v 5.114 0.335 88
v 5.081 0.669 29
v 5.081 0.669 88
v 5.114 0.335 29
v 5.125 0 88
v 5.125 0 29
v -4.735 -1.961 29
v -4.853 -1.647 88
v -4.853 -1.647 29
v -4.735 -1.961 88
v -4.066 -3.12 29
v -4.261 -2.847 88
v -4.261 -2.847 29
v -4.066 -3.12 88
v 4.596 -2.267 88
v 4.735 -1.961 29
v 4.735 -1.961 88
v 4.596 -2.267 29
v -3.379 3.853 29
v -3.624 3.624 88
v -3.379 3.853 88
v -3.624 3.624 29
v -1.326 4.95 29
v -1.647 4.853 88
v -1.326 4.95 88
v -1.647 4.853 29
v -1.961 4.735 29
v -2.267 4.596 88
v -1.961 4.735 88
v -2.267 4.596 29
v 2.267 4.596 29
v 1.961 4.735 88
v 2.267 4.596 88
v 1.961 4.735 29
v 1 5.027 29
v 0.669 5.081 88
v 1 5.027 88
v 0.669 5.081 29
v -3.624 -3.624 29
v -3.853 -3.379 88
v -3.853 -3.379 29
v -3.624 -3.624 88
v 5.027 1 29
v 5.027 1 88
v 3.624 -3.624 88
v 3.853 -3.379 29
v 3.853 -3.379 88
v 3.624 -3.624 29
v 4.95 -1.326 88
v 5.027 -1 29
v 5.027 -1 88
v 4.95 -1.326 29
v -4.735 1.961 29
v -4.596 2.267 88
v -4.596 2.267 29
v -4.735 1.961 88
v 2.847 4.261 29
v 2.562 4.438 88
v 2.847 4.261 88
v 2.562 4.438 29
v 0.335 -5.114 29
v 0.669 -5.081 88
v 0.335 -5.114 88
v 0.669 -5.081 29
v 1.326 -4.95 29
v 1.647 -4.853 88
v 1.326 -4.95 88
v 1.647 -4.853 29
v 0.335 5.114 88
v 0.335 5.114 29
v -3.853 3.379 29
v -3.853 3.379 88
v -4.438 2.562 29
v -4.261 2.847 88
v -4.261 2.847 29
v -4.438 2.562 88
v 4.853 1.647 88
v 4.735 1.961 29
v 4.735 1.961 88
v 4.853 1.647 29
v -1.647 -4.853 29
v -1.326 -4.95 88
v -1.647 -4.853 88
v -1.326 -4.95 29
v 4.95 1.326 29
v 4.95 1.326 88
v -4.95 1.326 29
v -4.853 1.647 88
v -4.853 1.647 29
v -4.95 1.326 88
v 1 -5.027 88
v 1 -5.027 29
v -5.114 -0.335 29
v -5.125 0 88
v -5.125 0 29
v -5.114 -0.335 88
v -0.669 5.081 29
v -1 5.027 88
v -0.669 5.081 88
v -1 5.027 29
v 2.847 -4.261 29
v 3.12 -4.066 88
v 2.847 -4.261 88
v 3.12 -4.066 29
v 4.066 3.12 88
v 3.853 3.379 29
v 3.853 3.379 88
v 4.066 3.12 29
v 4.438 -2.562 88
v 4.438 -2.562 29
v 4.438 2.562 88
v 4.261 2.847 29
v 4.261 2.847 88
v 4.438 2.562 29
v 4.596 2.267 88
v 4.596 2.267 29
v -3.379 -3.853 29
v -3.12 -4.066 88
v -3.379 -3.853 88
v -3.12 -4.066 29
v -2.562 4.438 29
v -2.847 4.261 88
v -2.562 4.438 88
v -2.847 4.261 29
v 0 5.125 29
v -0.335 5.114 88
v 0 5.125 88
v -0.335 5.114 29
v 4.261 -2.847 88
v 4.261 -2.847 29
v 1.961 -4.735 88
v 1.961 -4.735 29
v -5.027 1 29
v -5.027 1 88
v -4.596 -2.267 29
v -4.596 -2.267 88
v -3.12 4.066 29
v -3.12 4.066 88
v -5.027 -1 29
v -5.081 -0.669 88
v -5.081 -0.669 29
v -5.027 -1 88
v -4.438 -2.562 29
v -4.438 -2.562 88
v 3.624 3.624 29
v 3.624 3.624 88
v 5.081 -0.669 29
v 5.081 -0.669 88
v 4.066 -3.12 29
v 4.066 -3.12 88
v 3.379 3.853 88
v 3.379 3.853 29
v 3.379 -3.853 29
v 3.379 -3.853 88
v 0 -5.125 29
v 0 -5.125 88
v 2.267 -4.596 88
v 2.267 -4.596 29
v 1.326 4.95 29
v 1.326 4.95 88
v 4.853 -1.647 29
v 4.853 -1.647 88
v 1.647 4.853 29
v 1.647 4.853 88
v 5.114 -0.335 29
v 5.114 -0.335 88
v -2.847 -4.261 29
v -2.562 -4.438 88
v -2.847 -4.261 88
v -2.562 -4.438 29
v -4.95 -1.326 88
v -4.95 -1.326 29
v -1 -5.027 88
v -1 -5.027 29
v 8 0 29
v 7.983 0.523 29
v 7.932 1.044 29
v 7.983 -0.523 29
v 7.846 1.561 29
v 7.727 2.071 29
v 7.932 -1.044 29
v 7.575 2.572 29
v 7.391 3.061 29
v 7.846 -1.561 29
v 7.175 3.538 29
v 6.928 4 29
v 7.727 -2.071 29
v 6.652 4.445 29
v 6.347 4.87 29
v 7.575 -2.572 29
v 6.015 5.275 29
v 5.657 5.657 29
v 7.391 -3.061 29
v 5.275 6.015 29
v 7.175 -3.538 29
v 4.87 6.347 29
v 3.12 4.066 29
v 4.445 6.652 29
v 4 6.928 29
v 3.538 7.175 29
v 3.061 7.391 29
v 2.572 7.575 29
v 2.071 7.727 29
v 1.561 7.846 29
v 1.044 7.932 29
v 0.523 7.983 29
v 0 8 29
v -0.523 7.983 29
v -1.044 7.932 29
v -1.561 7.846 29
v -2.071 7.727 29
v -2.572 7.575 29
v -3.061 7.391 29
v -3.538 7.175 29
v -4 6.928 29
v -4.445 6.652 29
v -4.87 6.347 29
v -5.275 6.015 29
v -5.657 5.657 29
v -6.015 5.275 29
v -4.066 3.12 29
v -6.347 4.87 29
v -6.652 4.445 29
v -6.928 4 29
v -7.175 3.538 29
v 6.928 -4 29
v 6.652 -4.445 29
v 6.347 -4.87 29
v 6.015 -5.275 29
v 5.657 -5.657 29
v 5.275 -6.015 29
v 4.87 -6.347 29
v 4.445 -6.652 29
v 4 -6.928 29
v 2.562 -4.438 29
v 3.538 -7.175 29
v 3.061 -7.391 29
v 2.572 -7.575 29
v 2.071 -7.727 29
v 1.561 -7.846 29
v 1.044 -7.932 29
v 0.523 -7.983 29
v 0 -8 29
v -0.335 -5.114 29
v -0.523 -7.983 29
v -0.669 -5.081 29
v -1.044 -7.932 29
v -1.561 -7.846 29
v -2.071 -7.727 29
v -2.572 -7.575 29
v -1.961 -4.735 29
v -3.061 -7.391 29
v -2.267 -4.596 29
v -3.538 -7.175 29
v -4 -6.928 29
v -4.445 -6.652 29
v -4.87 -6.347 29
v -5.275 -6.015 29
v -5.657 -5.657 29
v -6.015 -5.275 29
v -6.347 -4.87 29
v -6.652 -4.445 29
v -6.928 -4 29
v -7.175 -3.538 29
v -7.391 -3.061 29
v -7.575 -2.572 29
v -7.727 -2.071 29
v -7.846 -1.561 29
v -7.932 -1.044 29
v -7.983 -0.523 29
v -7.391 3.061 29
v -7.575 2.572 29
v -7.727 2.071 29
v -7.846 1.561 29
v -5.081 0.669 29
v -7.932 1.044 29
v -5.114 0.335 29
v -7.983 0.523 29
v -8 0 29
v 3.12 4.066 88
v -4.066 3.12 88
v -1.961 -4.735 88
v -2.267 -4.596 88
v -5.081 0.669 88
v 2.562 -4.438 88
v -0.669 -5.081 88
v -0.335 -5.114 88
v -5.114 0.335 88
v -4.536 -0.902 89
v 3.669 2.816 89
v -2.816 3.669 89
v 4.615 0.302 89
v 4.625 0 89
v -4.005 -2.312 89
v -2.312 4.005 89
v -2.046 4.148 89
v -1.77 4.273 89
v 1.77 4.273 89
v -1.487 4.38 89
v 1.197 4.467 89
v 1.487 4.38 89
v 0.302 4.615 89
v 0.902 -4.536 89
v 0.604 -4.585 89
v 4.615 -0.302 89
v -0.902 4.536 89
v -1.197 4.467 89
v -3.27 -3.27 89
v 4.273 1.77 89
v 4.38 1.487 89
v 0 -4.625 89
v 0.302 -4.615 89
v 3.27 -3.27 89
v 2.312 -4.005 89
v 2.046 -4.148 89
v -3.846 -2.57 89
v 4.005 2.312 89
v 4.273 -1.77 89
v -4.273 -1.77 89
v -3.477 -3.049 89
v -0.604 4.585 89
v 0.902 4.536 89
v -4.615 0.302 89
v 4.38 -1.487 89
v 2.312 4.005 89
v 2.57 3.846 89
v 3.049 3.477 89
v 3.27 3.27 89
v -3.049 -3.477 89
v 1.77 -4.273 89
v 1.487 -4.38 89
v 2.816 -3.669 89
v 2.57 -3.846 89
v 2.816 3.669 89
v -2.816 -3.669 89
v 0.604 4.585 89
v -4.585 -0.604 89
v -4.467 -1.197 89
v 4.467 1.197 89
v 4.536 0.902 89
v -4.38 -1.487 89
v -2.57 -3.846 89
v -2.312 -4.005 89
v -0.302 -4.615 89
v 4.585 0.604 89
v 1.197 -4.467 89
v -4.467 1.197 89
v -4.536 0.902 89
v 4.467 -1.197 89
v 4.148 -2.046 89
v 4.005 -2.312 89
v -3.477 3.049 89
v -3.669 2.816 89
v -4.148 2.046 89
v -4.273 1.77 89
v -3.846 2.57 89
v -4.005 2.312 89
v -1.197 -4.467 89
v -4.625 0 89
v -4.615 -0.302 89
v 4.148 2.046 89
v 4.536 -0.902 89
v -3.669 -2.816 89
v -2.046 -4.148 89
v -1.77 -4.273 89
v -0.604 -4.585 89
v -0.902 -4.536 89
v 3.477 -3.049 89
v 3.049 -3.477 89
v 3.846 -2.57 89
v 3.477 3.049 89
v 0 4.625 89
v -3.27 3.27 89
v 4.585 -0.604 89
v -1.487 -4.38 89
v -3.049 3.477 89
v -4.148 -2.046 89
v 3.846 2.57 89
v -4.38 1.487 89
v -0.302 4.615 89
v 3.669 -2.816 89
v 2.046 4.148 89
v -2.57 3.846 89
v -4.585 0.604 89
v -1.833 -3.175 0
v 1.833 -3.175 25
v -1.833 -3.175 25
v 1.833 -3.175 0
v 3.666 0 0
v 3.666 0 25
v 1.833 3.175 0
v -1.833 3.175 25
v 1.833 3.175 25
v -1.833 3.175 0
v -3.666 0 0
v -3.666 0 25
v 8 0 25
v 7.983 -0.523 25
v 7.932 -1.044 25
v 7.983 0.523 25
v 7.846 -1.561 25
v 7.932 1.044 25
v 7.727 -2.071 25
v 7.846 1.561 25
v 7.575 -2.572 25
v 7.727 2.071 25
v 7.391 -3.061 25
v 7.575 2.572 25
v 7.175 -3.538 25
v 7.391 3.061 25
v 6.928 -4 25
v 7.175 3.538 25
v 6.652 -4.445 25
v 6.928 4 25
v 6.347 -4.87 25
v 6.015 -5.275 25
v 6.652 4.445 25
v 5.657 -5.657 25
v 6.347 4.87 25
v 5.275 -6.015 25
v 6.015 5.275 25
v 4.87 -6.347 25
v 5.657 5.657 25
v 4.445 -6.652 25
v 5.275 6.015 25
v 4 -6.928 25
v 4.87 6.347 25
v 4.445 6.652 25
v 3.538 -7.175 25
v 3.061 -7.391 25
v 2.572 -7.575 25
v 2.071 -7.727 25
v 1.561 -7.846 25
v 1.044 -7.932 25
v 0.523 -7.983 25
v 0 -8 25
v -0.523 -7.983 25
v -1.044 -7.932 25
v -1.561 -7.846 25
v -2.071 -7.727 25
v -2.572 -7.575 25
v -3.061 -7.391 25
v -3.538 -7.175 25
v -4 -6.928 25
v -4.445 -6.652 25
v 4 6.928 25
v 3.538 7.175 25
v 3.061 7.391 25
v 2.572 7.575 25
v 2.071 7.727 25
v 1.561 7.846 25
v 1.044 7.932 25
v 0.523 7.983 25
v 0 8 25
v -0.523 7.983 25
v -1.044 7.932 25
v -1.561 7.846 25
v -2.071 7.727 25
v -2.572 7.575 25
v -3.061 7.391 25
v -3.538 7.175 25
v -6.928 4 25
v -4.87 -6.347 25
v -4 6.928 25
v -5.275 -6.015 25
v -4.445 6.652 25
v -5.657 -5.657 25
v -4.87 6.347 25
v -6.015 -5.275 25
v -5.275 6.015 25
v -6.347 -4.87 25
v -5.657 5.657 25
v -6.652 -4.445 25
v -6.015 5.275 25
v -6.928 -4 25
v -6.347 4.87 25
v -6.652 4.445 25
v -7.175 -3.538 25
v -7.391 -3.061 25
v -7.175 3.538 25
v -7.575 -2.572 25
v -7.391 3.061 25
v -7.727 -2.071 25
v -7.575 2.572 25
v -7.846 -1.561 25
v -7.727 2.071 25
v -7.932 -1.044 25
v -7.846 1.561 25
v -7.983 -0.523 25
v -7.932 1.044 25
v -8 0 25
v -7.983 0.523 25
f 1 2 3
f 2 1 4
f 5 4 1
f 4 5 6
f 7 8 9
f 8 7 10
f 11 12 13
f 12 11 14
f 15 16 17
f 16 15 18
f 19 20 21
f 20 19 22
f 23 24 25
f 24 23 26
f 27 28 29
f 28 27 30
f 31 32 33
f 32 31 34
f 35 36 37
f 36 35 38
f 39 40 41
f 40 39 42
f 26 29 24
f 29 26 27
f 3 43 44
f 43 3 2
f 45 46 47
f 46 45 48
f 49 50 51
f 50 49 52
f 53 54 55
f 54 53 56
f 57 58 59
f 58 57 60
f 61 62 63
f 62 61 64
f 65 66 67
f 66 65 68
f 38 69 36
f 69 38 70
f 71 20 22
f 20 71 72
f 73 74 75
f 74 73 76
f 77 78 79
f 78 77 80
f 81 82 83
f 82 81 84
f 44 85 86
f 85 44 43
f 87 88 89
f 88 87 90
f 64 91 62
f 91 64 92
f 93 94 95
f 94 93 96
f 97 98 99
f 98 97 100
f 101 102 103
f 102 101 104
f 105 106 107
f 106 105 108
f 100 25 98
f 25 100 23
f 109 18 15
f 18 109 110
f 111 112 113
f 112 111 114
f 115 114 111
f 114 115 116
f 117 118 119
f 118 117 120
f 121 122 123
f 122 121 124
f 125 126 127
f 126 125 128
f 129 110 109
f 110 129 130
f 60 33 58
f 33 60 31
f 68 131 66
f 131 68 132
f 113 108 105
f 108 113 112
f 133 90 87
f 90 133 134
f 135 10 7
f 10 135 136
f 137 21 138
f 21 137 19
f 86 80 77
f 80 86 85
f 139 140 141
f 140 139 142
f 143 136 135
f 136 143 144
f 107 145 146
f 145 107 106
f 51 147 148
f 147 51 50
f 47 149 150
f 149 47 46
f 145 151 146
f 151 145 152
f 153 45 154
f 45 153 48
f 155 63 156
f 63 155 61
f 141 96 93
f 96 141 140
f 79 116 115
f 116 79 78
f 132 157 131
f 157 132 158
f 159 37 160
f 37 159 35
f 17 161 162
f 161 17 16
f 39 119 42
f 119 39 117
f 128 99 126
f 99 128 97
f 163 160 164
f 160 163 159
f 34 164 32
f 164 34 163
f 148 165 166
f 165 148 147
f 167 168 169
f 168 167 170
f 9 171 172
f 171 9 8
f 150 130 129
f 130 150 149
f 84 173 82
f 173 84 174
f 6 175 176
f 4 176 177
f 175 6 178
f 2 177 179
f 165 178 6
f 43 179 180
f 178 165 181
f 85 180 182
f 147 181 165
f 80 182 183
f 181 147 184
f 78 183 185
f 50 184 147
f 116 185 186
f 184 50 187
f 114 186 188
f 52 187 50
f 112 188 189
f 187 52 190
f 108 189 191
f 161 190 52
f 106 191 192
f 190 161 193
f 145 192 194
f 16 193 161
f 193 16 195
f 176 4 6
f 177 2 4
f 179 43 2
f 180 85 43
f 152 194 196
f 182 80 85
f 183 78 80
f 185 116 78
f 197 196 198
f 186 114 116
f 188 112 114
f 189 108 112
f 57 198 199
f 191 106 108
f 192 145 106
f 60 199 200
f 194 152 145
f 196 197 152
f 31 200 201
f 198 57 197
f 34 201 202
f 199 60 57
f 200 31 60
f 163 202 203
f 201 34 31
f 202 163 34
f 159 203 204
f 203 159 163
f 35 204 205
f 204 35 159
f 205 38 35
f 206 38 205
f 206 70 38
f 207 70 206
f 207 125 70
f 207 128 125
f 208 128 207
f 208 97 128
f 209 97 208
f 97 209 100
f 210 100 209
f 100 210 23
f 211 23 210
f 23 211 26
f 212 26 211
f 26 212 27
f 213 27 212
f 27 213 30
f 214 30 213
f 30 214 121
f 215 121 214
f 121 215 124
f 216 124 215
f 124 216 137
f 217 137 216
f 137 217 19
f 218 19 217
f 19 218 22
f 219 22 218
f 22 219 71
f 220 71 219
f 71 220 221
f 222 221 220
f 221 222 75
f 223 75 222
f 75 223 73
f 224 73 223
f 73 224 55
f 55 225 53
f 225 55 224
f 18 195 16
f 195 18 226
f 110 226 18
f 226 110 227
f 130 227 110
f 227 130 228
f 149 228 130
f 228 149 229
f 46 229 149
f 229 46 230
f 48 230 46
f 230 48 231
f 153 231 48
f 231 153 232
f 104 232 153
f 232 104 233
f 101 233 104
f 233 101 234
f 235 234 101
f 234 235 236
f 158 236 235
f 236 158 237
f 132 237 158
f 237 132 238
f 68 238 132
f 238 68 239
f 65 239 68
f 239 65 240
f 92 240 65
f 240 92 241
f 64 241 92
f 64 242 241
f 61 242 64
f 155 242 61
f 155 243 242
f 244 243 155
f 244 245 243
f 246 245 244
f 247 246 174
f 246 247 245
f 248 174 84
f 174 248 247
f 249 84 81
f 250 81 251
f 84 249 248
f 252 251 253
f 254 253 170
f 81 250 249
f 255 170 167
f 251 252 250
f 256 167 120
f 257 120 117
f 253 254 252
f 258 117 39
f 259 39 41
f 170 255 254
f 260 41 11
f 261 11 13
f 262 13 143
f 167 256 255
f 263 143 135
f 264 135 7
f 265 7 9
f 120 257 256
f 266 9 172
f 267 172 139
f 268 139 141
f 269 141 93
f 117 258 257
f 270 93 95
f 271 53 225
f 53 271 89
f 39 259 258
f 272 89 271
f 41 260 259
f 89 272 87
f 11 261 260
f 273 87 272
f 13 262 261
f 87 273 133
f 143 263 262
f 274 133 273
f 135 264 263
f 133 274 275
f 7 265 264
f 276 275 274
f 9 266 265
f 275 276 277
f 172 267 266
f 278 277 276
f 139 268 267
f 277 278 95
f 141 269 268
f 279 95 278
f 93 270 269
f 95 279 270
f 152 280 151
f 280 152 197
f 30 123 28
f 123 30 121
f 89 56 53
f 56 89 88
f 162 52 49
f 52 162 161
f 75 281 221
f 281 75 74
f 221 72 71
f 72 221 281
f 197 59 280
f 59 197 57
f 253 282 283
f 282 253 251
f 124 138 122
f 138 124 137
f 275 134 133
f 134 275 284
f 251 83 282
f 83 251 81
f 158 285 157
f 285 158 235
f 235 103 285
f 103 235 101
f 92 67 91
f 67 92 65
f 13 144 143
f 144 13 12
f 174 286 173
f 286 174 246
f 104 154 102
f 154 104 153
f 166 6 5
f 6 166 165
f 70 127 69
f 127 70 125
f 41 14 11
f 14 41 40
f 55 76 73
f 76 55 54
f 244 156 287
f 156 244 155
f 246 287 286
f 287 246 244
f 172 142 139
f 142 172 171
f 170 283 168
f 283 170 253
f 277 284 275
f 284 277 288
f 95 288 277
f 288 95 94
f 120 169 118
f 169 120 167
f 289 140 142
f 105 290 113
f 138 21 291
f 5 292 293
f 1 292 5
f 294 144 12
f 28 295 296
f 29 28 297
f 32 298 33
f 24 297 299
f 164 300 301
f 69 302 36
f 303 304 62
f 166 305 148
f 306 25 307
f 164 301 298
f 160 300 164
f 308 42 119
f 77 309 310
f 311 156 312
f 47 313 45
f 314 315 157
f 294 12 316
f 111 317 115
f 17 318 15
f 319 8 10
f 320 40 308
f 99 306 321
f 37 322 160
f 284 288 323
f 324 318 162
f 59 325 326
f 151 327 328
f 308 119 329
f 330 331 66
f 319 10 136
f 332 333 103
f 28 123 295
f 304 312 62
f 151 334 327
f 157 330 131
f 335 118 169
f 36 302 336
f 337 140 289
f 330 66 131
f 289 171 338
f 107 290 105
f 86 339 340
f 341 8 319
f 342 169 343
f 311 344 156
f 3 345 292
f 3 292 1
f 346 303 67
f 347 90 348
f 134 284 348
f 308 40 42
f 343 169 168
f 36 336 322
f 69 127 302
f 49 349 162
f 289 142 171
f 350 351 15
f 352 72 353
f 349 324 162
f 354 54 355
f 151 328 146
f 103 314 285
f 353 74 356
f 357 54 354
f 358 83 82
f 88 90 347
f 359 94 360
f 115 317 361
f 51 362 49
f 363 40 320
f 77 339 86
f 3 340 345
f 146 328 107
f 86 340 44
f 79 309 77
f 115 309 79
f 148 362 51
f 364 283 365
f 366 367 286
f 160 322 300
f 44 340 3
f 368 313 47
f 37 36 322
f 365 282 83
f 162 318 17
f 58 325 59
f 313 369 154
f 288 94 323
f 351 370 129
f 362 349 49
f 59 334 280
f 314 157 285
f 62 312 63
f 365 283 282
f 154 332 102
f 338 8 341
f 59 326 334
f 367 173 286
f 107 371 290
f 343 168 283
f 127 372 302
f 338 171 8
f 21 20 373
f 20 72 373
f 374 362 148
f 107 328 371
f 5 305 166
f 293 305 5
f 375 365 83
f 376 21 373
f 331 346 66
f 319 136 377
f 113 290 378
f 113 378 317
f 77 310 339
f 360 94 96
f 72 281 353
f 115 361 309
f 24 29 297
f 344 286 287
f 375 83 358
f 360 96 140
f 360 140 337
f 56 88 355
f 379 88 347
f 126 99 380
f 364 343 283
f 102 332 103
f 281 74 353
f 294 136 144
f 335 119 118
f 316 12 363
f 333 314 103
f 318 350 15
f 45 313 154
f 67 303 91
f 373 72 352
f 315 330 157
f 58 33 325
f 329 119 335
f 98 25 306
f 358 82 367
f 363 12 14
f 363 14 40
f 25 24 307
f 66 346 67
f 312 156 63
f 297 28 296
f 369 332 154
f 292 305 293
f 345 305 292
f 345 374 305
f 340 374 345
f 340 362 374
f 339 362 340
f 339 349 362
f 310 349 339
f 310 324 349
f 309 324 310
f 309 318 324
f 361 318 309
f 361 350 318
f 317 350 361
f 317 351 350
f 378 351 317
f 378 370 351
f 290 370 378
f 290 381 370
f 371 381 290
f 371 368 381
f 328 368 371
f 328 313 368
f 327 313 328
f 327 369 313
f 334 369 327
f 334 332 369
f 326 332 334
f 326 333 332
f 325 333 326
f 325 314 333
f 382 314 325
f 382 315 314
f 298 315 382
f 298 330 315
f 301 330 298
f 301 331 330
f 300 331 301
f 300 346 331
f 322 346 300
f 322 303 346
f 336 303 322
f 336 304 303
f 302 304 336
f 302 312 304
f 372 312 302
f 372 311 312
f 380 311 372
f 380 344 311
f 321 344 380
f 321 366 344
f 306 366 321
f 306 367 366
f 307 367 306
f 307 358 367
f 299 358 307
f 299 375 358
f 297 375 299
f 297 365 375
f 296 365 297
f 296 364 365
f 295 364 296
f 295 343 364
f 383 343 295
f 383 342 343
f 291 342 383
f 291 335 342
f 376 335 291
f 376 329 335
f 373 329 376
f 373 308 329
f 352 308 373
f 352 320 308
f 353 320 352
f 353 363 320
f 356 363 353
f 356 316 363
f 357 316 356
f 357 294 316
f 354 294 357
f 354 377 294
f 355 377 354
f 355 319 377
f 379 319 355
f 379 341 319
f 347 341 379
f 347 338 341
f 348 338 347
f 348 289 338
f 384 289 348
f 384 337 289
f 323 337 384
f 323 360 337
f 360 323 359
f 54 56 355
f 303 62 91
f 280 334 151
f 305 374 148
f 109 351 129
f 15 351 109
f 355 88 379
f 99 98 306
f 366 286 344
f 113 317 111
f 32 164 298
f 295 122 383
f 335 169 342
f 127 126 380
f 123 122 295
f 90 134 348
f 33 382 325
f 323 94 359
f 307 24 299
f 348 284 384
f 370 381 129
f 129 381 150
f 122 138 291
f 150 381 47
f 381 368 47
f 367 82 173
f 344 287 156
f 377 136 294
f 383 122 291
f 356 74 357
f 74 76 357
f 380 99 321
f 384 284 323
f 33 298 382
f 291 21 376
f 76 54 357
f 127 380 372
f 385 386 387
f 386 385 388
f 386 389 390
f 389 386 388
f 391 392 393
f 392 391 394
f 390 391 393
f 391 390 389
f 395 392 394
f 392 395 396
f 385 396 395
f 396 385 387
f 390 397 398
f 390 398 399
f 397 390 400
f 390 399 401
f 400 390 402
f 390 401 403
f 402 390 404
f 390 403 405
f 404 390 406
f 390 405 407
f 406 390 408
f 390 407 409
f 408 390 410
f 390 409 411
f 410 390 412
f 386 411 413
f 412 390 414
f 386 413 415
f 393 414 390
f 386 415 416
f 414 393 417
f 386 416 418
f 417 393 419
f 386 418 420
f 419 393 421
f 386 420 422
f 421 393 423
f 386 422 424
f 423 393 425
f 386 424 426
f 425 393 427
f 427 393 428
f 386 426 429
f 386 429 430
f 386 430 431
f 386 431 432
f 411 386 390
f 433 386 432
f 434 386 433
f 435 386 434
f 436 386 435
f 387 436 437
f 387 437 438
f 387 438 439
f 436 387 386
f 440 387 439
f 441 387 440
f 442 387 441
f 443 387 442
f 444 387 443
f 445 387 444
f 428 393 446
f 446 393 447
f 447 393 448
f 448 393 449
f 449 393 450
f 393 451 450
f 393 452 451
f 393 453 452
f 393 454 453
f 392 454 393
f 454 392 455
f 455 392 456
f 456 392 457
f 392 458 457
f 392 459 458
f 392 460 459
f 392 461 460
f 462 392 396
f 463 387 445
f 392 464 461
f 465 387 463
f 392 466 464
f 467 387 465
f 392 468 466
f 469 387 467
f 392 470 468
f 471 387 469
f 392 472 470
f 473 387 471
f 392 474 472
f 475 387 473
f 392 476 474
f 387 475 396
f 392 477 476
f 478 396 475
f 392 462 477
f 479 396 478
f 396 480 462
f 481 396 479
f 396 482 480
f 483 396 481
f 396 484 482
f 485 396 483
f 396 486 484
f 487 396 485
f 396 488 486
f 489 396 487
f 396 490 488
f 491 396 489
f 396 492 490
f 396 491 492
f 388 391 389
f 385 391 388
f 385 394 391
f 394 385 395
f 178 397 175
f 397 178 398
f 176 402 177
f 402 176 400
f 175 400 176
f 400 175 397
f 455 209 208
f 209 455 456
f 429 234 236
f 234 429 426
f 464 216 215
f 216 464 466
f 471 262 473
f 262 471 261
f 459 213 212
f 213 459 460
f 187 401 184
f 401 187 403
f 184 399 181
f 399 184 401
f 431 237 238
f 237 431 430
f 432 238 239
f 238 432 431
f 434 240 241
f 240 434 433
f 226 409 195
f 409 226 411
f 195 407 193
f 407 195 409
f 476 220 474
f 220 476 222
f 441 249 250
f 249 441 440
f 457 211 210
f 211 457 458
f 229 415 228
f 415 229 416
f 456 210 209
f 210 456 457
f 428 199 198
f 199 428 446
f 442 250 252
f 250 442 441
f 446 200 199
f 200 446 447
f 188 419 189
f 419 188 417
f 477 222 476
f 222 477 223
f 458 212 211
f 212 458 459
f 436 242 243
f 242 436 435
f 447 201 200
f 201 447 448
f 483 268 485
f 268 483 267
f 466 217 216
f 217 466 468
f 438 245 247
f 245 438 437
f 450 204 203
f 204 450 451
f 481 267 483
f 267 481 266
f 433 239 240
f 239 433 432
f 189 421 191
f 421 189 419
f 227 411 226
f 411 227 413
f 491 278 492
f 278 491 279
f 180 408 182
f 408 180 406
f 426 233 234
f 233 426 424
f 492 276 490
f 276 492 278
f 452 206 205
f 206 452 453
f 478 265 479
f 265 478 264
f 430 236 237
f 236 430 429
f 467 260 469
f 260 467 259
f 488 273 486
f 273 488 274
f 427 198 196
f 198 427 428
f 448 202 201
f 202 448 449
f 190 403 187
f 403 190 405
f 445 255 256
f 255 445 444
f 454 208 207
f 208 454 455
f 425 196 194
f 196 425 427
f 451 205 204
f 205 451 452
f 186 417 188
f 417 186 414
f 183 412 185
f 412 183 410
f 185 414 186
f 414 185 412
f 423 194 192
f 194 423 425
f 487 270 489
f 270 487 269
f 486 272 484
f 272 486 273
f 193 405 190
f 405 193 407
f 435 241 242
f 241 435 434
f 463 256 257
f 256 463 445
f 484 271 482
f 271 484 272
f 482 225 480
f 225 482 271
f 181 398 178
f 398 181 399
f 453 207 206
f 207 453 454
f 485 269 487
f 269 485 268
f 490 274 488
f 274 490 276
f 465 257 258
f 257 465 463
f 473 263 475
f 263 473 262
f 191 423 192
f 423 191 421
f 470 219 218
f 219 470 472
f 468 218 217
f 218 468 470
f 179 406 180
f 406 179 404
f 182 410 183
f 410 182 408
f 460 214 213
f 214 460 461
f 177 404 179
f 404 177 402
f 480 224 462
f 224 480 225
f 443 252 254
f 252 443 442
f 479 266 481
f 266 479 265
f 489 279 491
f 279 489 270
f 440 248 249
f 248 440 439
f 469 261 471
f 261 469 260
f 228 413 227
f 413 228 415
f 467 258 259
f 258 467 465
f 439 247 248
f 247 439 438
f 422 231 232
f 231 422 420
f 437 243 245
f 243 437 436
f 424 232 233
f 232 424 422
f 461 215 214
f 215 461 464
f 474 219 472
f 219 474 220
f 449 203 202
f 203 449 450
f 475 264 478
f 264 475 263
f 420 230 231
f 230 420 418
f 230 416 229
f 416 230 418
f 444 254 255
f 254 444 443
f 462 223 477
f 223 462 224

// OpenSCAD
// =============================================================================
// Wickeldorn: hält den Spulenkörper im Akkuschrauber
// -----------------------------------------------------------------------------
// Unten ein 1/4"-Sechskantschaft für das Bohrfutter, darüber eine Schulter als
// Anschlag, oben der Dorn, auf den der Spulenkörper stramm aufgeschoben wird.
// Druck: PETG, stehend (Sechskant unten), Brim an, 100 % Füllung für den Schaft.
// =============================================================================

dorn_d    = 10.25;  // etwas kleiner als die Bohrung des Spulenkörpers (10,4)
dorn_l    = 60;     // länger als der längste Spulenkörper
schulter_d = 16;
schulter_h = 4;
sechskant_sw = 6.35; // Schlüsselweite 1/4"
schaft_l  = 25;

$fn = 96;

// Sechskantschaft
cylinder(h = schaft_l, d = sechskant_sw / cos(30), $fn = 6);
// Schulter
translate([0, 0, schaft_l]) cylinder(h = schulter_h, d = schulter_d);
// Dorn mit leichter Fase oben
translate([0, 0, schaft_l + schulter_h]) {
  cylinder(h = dorn_l - 1, d = dorn_d);
  translate([0, 0, dorn_l - 1]) cylinder(h = 1, d1 = dorn_d, d2 = dorn_d - 1);
}
